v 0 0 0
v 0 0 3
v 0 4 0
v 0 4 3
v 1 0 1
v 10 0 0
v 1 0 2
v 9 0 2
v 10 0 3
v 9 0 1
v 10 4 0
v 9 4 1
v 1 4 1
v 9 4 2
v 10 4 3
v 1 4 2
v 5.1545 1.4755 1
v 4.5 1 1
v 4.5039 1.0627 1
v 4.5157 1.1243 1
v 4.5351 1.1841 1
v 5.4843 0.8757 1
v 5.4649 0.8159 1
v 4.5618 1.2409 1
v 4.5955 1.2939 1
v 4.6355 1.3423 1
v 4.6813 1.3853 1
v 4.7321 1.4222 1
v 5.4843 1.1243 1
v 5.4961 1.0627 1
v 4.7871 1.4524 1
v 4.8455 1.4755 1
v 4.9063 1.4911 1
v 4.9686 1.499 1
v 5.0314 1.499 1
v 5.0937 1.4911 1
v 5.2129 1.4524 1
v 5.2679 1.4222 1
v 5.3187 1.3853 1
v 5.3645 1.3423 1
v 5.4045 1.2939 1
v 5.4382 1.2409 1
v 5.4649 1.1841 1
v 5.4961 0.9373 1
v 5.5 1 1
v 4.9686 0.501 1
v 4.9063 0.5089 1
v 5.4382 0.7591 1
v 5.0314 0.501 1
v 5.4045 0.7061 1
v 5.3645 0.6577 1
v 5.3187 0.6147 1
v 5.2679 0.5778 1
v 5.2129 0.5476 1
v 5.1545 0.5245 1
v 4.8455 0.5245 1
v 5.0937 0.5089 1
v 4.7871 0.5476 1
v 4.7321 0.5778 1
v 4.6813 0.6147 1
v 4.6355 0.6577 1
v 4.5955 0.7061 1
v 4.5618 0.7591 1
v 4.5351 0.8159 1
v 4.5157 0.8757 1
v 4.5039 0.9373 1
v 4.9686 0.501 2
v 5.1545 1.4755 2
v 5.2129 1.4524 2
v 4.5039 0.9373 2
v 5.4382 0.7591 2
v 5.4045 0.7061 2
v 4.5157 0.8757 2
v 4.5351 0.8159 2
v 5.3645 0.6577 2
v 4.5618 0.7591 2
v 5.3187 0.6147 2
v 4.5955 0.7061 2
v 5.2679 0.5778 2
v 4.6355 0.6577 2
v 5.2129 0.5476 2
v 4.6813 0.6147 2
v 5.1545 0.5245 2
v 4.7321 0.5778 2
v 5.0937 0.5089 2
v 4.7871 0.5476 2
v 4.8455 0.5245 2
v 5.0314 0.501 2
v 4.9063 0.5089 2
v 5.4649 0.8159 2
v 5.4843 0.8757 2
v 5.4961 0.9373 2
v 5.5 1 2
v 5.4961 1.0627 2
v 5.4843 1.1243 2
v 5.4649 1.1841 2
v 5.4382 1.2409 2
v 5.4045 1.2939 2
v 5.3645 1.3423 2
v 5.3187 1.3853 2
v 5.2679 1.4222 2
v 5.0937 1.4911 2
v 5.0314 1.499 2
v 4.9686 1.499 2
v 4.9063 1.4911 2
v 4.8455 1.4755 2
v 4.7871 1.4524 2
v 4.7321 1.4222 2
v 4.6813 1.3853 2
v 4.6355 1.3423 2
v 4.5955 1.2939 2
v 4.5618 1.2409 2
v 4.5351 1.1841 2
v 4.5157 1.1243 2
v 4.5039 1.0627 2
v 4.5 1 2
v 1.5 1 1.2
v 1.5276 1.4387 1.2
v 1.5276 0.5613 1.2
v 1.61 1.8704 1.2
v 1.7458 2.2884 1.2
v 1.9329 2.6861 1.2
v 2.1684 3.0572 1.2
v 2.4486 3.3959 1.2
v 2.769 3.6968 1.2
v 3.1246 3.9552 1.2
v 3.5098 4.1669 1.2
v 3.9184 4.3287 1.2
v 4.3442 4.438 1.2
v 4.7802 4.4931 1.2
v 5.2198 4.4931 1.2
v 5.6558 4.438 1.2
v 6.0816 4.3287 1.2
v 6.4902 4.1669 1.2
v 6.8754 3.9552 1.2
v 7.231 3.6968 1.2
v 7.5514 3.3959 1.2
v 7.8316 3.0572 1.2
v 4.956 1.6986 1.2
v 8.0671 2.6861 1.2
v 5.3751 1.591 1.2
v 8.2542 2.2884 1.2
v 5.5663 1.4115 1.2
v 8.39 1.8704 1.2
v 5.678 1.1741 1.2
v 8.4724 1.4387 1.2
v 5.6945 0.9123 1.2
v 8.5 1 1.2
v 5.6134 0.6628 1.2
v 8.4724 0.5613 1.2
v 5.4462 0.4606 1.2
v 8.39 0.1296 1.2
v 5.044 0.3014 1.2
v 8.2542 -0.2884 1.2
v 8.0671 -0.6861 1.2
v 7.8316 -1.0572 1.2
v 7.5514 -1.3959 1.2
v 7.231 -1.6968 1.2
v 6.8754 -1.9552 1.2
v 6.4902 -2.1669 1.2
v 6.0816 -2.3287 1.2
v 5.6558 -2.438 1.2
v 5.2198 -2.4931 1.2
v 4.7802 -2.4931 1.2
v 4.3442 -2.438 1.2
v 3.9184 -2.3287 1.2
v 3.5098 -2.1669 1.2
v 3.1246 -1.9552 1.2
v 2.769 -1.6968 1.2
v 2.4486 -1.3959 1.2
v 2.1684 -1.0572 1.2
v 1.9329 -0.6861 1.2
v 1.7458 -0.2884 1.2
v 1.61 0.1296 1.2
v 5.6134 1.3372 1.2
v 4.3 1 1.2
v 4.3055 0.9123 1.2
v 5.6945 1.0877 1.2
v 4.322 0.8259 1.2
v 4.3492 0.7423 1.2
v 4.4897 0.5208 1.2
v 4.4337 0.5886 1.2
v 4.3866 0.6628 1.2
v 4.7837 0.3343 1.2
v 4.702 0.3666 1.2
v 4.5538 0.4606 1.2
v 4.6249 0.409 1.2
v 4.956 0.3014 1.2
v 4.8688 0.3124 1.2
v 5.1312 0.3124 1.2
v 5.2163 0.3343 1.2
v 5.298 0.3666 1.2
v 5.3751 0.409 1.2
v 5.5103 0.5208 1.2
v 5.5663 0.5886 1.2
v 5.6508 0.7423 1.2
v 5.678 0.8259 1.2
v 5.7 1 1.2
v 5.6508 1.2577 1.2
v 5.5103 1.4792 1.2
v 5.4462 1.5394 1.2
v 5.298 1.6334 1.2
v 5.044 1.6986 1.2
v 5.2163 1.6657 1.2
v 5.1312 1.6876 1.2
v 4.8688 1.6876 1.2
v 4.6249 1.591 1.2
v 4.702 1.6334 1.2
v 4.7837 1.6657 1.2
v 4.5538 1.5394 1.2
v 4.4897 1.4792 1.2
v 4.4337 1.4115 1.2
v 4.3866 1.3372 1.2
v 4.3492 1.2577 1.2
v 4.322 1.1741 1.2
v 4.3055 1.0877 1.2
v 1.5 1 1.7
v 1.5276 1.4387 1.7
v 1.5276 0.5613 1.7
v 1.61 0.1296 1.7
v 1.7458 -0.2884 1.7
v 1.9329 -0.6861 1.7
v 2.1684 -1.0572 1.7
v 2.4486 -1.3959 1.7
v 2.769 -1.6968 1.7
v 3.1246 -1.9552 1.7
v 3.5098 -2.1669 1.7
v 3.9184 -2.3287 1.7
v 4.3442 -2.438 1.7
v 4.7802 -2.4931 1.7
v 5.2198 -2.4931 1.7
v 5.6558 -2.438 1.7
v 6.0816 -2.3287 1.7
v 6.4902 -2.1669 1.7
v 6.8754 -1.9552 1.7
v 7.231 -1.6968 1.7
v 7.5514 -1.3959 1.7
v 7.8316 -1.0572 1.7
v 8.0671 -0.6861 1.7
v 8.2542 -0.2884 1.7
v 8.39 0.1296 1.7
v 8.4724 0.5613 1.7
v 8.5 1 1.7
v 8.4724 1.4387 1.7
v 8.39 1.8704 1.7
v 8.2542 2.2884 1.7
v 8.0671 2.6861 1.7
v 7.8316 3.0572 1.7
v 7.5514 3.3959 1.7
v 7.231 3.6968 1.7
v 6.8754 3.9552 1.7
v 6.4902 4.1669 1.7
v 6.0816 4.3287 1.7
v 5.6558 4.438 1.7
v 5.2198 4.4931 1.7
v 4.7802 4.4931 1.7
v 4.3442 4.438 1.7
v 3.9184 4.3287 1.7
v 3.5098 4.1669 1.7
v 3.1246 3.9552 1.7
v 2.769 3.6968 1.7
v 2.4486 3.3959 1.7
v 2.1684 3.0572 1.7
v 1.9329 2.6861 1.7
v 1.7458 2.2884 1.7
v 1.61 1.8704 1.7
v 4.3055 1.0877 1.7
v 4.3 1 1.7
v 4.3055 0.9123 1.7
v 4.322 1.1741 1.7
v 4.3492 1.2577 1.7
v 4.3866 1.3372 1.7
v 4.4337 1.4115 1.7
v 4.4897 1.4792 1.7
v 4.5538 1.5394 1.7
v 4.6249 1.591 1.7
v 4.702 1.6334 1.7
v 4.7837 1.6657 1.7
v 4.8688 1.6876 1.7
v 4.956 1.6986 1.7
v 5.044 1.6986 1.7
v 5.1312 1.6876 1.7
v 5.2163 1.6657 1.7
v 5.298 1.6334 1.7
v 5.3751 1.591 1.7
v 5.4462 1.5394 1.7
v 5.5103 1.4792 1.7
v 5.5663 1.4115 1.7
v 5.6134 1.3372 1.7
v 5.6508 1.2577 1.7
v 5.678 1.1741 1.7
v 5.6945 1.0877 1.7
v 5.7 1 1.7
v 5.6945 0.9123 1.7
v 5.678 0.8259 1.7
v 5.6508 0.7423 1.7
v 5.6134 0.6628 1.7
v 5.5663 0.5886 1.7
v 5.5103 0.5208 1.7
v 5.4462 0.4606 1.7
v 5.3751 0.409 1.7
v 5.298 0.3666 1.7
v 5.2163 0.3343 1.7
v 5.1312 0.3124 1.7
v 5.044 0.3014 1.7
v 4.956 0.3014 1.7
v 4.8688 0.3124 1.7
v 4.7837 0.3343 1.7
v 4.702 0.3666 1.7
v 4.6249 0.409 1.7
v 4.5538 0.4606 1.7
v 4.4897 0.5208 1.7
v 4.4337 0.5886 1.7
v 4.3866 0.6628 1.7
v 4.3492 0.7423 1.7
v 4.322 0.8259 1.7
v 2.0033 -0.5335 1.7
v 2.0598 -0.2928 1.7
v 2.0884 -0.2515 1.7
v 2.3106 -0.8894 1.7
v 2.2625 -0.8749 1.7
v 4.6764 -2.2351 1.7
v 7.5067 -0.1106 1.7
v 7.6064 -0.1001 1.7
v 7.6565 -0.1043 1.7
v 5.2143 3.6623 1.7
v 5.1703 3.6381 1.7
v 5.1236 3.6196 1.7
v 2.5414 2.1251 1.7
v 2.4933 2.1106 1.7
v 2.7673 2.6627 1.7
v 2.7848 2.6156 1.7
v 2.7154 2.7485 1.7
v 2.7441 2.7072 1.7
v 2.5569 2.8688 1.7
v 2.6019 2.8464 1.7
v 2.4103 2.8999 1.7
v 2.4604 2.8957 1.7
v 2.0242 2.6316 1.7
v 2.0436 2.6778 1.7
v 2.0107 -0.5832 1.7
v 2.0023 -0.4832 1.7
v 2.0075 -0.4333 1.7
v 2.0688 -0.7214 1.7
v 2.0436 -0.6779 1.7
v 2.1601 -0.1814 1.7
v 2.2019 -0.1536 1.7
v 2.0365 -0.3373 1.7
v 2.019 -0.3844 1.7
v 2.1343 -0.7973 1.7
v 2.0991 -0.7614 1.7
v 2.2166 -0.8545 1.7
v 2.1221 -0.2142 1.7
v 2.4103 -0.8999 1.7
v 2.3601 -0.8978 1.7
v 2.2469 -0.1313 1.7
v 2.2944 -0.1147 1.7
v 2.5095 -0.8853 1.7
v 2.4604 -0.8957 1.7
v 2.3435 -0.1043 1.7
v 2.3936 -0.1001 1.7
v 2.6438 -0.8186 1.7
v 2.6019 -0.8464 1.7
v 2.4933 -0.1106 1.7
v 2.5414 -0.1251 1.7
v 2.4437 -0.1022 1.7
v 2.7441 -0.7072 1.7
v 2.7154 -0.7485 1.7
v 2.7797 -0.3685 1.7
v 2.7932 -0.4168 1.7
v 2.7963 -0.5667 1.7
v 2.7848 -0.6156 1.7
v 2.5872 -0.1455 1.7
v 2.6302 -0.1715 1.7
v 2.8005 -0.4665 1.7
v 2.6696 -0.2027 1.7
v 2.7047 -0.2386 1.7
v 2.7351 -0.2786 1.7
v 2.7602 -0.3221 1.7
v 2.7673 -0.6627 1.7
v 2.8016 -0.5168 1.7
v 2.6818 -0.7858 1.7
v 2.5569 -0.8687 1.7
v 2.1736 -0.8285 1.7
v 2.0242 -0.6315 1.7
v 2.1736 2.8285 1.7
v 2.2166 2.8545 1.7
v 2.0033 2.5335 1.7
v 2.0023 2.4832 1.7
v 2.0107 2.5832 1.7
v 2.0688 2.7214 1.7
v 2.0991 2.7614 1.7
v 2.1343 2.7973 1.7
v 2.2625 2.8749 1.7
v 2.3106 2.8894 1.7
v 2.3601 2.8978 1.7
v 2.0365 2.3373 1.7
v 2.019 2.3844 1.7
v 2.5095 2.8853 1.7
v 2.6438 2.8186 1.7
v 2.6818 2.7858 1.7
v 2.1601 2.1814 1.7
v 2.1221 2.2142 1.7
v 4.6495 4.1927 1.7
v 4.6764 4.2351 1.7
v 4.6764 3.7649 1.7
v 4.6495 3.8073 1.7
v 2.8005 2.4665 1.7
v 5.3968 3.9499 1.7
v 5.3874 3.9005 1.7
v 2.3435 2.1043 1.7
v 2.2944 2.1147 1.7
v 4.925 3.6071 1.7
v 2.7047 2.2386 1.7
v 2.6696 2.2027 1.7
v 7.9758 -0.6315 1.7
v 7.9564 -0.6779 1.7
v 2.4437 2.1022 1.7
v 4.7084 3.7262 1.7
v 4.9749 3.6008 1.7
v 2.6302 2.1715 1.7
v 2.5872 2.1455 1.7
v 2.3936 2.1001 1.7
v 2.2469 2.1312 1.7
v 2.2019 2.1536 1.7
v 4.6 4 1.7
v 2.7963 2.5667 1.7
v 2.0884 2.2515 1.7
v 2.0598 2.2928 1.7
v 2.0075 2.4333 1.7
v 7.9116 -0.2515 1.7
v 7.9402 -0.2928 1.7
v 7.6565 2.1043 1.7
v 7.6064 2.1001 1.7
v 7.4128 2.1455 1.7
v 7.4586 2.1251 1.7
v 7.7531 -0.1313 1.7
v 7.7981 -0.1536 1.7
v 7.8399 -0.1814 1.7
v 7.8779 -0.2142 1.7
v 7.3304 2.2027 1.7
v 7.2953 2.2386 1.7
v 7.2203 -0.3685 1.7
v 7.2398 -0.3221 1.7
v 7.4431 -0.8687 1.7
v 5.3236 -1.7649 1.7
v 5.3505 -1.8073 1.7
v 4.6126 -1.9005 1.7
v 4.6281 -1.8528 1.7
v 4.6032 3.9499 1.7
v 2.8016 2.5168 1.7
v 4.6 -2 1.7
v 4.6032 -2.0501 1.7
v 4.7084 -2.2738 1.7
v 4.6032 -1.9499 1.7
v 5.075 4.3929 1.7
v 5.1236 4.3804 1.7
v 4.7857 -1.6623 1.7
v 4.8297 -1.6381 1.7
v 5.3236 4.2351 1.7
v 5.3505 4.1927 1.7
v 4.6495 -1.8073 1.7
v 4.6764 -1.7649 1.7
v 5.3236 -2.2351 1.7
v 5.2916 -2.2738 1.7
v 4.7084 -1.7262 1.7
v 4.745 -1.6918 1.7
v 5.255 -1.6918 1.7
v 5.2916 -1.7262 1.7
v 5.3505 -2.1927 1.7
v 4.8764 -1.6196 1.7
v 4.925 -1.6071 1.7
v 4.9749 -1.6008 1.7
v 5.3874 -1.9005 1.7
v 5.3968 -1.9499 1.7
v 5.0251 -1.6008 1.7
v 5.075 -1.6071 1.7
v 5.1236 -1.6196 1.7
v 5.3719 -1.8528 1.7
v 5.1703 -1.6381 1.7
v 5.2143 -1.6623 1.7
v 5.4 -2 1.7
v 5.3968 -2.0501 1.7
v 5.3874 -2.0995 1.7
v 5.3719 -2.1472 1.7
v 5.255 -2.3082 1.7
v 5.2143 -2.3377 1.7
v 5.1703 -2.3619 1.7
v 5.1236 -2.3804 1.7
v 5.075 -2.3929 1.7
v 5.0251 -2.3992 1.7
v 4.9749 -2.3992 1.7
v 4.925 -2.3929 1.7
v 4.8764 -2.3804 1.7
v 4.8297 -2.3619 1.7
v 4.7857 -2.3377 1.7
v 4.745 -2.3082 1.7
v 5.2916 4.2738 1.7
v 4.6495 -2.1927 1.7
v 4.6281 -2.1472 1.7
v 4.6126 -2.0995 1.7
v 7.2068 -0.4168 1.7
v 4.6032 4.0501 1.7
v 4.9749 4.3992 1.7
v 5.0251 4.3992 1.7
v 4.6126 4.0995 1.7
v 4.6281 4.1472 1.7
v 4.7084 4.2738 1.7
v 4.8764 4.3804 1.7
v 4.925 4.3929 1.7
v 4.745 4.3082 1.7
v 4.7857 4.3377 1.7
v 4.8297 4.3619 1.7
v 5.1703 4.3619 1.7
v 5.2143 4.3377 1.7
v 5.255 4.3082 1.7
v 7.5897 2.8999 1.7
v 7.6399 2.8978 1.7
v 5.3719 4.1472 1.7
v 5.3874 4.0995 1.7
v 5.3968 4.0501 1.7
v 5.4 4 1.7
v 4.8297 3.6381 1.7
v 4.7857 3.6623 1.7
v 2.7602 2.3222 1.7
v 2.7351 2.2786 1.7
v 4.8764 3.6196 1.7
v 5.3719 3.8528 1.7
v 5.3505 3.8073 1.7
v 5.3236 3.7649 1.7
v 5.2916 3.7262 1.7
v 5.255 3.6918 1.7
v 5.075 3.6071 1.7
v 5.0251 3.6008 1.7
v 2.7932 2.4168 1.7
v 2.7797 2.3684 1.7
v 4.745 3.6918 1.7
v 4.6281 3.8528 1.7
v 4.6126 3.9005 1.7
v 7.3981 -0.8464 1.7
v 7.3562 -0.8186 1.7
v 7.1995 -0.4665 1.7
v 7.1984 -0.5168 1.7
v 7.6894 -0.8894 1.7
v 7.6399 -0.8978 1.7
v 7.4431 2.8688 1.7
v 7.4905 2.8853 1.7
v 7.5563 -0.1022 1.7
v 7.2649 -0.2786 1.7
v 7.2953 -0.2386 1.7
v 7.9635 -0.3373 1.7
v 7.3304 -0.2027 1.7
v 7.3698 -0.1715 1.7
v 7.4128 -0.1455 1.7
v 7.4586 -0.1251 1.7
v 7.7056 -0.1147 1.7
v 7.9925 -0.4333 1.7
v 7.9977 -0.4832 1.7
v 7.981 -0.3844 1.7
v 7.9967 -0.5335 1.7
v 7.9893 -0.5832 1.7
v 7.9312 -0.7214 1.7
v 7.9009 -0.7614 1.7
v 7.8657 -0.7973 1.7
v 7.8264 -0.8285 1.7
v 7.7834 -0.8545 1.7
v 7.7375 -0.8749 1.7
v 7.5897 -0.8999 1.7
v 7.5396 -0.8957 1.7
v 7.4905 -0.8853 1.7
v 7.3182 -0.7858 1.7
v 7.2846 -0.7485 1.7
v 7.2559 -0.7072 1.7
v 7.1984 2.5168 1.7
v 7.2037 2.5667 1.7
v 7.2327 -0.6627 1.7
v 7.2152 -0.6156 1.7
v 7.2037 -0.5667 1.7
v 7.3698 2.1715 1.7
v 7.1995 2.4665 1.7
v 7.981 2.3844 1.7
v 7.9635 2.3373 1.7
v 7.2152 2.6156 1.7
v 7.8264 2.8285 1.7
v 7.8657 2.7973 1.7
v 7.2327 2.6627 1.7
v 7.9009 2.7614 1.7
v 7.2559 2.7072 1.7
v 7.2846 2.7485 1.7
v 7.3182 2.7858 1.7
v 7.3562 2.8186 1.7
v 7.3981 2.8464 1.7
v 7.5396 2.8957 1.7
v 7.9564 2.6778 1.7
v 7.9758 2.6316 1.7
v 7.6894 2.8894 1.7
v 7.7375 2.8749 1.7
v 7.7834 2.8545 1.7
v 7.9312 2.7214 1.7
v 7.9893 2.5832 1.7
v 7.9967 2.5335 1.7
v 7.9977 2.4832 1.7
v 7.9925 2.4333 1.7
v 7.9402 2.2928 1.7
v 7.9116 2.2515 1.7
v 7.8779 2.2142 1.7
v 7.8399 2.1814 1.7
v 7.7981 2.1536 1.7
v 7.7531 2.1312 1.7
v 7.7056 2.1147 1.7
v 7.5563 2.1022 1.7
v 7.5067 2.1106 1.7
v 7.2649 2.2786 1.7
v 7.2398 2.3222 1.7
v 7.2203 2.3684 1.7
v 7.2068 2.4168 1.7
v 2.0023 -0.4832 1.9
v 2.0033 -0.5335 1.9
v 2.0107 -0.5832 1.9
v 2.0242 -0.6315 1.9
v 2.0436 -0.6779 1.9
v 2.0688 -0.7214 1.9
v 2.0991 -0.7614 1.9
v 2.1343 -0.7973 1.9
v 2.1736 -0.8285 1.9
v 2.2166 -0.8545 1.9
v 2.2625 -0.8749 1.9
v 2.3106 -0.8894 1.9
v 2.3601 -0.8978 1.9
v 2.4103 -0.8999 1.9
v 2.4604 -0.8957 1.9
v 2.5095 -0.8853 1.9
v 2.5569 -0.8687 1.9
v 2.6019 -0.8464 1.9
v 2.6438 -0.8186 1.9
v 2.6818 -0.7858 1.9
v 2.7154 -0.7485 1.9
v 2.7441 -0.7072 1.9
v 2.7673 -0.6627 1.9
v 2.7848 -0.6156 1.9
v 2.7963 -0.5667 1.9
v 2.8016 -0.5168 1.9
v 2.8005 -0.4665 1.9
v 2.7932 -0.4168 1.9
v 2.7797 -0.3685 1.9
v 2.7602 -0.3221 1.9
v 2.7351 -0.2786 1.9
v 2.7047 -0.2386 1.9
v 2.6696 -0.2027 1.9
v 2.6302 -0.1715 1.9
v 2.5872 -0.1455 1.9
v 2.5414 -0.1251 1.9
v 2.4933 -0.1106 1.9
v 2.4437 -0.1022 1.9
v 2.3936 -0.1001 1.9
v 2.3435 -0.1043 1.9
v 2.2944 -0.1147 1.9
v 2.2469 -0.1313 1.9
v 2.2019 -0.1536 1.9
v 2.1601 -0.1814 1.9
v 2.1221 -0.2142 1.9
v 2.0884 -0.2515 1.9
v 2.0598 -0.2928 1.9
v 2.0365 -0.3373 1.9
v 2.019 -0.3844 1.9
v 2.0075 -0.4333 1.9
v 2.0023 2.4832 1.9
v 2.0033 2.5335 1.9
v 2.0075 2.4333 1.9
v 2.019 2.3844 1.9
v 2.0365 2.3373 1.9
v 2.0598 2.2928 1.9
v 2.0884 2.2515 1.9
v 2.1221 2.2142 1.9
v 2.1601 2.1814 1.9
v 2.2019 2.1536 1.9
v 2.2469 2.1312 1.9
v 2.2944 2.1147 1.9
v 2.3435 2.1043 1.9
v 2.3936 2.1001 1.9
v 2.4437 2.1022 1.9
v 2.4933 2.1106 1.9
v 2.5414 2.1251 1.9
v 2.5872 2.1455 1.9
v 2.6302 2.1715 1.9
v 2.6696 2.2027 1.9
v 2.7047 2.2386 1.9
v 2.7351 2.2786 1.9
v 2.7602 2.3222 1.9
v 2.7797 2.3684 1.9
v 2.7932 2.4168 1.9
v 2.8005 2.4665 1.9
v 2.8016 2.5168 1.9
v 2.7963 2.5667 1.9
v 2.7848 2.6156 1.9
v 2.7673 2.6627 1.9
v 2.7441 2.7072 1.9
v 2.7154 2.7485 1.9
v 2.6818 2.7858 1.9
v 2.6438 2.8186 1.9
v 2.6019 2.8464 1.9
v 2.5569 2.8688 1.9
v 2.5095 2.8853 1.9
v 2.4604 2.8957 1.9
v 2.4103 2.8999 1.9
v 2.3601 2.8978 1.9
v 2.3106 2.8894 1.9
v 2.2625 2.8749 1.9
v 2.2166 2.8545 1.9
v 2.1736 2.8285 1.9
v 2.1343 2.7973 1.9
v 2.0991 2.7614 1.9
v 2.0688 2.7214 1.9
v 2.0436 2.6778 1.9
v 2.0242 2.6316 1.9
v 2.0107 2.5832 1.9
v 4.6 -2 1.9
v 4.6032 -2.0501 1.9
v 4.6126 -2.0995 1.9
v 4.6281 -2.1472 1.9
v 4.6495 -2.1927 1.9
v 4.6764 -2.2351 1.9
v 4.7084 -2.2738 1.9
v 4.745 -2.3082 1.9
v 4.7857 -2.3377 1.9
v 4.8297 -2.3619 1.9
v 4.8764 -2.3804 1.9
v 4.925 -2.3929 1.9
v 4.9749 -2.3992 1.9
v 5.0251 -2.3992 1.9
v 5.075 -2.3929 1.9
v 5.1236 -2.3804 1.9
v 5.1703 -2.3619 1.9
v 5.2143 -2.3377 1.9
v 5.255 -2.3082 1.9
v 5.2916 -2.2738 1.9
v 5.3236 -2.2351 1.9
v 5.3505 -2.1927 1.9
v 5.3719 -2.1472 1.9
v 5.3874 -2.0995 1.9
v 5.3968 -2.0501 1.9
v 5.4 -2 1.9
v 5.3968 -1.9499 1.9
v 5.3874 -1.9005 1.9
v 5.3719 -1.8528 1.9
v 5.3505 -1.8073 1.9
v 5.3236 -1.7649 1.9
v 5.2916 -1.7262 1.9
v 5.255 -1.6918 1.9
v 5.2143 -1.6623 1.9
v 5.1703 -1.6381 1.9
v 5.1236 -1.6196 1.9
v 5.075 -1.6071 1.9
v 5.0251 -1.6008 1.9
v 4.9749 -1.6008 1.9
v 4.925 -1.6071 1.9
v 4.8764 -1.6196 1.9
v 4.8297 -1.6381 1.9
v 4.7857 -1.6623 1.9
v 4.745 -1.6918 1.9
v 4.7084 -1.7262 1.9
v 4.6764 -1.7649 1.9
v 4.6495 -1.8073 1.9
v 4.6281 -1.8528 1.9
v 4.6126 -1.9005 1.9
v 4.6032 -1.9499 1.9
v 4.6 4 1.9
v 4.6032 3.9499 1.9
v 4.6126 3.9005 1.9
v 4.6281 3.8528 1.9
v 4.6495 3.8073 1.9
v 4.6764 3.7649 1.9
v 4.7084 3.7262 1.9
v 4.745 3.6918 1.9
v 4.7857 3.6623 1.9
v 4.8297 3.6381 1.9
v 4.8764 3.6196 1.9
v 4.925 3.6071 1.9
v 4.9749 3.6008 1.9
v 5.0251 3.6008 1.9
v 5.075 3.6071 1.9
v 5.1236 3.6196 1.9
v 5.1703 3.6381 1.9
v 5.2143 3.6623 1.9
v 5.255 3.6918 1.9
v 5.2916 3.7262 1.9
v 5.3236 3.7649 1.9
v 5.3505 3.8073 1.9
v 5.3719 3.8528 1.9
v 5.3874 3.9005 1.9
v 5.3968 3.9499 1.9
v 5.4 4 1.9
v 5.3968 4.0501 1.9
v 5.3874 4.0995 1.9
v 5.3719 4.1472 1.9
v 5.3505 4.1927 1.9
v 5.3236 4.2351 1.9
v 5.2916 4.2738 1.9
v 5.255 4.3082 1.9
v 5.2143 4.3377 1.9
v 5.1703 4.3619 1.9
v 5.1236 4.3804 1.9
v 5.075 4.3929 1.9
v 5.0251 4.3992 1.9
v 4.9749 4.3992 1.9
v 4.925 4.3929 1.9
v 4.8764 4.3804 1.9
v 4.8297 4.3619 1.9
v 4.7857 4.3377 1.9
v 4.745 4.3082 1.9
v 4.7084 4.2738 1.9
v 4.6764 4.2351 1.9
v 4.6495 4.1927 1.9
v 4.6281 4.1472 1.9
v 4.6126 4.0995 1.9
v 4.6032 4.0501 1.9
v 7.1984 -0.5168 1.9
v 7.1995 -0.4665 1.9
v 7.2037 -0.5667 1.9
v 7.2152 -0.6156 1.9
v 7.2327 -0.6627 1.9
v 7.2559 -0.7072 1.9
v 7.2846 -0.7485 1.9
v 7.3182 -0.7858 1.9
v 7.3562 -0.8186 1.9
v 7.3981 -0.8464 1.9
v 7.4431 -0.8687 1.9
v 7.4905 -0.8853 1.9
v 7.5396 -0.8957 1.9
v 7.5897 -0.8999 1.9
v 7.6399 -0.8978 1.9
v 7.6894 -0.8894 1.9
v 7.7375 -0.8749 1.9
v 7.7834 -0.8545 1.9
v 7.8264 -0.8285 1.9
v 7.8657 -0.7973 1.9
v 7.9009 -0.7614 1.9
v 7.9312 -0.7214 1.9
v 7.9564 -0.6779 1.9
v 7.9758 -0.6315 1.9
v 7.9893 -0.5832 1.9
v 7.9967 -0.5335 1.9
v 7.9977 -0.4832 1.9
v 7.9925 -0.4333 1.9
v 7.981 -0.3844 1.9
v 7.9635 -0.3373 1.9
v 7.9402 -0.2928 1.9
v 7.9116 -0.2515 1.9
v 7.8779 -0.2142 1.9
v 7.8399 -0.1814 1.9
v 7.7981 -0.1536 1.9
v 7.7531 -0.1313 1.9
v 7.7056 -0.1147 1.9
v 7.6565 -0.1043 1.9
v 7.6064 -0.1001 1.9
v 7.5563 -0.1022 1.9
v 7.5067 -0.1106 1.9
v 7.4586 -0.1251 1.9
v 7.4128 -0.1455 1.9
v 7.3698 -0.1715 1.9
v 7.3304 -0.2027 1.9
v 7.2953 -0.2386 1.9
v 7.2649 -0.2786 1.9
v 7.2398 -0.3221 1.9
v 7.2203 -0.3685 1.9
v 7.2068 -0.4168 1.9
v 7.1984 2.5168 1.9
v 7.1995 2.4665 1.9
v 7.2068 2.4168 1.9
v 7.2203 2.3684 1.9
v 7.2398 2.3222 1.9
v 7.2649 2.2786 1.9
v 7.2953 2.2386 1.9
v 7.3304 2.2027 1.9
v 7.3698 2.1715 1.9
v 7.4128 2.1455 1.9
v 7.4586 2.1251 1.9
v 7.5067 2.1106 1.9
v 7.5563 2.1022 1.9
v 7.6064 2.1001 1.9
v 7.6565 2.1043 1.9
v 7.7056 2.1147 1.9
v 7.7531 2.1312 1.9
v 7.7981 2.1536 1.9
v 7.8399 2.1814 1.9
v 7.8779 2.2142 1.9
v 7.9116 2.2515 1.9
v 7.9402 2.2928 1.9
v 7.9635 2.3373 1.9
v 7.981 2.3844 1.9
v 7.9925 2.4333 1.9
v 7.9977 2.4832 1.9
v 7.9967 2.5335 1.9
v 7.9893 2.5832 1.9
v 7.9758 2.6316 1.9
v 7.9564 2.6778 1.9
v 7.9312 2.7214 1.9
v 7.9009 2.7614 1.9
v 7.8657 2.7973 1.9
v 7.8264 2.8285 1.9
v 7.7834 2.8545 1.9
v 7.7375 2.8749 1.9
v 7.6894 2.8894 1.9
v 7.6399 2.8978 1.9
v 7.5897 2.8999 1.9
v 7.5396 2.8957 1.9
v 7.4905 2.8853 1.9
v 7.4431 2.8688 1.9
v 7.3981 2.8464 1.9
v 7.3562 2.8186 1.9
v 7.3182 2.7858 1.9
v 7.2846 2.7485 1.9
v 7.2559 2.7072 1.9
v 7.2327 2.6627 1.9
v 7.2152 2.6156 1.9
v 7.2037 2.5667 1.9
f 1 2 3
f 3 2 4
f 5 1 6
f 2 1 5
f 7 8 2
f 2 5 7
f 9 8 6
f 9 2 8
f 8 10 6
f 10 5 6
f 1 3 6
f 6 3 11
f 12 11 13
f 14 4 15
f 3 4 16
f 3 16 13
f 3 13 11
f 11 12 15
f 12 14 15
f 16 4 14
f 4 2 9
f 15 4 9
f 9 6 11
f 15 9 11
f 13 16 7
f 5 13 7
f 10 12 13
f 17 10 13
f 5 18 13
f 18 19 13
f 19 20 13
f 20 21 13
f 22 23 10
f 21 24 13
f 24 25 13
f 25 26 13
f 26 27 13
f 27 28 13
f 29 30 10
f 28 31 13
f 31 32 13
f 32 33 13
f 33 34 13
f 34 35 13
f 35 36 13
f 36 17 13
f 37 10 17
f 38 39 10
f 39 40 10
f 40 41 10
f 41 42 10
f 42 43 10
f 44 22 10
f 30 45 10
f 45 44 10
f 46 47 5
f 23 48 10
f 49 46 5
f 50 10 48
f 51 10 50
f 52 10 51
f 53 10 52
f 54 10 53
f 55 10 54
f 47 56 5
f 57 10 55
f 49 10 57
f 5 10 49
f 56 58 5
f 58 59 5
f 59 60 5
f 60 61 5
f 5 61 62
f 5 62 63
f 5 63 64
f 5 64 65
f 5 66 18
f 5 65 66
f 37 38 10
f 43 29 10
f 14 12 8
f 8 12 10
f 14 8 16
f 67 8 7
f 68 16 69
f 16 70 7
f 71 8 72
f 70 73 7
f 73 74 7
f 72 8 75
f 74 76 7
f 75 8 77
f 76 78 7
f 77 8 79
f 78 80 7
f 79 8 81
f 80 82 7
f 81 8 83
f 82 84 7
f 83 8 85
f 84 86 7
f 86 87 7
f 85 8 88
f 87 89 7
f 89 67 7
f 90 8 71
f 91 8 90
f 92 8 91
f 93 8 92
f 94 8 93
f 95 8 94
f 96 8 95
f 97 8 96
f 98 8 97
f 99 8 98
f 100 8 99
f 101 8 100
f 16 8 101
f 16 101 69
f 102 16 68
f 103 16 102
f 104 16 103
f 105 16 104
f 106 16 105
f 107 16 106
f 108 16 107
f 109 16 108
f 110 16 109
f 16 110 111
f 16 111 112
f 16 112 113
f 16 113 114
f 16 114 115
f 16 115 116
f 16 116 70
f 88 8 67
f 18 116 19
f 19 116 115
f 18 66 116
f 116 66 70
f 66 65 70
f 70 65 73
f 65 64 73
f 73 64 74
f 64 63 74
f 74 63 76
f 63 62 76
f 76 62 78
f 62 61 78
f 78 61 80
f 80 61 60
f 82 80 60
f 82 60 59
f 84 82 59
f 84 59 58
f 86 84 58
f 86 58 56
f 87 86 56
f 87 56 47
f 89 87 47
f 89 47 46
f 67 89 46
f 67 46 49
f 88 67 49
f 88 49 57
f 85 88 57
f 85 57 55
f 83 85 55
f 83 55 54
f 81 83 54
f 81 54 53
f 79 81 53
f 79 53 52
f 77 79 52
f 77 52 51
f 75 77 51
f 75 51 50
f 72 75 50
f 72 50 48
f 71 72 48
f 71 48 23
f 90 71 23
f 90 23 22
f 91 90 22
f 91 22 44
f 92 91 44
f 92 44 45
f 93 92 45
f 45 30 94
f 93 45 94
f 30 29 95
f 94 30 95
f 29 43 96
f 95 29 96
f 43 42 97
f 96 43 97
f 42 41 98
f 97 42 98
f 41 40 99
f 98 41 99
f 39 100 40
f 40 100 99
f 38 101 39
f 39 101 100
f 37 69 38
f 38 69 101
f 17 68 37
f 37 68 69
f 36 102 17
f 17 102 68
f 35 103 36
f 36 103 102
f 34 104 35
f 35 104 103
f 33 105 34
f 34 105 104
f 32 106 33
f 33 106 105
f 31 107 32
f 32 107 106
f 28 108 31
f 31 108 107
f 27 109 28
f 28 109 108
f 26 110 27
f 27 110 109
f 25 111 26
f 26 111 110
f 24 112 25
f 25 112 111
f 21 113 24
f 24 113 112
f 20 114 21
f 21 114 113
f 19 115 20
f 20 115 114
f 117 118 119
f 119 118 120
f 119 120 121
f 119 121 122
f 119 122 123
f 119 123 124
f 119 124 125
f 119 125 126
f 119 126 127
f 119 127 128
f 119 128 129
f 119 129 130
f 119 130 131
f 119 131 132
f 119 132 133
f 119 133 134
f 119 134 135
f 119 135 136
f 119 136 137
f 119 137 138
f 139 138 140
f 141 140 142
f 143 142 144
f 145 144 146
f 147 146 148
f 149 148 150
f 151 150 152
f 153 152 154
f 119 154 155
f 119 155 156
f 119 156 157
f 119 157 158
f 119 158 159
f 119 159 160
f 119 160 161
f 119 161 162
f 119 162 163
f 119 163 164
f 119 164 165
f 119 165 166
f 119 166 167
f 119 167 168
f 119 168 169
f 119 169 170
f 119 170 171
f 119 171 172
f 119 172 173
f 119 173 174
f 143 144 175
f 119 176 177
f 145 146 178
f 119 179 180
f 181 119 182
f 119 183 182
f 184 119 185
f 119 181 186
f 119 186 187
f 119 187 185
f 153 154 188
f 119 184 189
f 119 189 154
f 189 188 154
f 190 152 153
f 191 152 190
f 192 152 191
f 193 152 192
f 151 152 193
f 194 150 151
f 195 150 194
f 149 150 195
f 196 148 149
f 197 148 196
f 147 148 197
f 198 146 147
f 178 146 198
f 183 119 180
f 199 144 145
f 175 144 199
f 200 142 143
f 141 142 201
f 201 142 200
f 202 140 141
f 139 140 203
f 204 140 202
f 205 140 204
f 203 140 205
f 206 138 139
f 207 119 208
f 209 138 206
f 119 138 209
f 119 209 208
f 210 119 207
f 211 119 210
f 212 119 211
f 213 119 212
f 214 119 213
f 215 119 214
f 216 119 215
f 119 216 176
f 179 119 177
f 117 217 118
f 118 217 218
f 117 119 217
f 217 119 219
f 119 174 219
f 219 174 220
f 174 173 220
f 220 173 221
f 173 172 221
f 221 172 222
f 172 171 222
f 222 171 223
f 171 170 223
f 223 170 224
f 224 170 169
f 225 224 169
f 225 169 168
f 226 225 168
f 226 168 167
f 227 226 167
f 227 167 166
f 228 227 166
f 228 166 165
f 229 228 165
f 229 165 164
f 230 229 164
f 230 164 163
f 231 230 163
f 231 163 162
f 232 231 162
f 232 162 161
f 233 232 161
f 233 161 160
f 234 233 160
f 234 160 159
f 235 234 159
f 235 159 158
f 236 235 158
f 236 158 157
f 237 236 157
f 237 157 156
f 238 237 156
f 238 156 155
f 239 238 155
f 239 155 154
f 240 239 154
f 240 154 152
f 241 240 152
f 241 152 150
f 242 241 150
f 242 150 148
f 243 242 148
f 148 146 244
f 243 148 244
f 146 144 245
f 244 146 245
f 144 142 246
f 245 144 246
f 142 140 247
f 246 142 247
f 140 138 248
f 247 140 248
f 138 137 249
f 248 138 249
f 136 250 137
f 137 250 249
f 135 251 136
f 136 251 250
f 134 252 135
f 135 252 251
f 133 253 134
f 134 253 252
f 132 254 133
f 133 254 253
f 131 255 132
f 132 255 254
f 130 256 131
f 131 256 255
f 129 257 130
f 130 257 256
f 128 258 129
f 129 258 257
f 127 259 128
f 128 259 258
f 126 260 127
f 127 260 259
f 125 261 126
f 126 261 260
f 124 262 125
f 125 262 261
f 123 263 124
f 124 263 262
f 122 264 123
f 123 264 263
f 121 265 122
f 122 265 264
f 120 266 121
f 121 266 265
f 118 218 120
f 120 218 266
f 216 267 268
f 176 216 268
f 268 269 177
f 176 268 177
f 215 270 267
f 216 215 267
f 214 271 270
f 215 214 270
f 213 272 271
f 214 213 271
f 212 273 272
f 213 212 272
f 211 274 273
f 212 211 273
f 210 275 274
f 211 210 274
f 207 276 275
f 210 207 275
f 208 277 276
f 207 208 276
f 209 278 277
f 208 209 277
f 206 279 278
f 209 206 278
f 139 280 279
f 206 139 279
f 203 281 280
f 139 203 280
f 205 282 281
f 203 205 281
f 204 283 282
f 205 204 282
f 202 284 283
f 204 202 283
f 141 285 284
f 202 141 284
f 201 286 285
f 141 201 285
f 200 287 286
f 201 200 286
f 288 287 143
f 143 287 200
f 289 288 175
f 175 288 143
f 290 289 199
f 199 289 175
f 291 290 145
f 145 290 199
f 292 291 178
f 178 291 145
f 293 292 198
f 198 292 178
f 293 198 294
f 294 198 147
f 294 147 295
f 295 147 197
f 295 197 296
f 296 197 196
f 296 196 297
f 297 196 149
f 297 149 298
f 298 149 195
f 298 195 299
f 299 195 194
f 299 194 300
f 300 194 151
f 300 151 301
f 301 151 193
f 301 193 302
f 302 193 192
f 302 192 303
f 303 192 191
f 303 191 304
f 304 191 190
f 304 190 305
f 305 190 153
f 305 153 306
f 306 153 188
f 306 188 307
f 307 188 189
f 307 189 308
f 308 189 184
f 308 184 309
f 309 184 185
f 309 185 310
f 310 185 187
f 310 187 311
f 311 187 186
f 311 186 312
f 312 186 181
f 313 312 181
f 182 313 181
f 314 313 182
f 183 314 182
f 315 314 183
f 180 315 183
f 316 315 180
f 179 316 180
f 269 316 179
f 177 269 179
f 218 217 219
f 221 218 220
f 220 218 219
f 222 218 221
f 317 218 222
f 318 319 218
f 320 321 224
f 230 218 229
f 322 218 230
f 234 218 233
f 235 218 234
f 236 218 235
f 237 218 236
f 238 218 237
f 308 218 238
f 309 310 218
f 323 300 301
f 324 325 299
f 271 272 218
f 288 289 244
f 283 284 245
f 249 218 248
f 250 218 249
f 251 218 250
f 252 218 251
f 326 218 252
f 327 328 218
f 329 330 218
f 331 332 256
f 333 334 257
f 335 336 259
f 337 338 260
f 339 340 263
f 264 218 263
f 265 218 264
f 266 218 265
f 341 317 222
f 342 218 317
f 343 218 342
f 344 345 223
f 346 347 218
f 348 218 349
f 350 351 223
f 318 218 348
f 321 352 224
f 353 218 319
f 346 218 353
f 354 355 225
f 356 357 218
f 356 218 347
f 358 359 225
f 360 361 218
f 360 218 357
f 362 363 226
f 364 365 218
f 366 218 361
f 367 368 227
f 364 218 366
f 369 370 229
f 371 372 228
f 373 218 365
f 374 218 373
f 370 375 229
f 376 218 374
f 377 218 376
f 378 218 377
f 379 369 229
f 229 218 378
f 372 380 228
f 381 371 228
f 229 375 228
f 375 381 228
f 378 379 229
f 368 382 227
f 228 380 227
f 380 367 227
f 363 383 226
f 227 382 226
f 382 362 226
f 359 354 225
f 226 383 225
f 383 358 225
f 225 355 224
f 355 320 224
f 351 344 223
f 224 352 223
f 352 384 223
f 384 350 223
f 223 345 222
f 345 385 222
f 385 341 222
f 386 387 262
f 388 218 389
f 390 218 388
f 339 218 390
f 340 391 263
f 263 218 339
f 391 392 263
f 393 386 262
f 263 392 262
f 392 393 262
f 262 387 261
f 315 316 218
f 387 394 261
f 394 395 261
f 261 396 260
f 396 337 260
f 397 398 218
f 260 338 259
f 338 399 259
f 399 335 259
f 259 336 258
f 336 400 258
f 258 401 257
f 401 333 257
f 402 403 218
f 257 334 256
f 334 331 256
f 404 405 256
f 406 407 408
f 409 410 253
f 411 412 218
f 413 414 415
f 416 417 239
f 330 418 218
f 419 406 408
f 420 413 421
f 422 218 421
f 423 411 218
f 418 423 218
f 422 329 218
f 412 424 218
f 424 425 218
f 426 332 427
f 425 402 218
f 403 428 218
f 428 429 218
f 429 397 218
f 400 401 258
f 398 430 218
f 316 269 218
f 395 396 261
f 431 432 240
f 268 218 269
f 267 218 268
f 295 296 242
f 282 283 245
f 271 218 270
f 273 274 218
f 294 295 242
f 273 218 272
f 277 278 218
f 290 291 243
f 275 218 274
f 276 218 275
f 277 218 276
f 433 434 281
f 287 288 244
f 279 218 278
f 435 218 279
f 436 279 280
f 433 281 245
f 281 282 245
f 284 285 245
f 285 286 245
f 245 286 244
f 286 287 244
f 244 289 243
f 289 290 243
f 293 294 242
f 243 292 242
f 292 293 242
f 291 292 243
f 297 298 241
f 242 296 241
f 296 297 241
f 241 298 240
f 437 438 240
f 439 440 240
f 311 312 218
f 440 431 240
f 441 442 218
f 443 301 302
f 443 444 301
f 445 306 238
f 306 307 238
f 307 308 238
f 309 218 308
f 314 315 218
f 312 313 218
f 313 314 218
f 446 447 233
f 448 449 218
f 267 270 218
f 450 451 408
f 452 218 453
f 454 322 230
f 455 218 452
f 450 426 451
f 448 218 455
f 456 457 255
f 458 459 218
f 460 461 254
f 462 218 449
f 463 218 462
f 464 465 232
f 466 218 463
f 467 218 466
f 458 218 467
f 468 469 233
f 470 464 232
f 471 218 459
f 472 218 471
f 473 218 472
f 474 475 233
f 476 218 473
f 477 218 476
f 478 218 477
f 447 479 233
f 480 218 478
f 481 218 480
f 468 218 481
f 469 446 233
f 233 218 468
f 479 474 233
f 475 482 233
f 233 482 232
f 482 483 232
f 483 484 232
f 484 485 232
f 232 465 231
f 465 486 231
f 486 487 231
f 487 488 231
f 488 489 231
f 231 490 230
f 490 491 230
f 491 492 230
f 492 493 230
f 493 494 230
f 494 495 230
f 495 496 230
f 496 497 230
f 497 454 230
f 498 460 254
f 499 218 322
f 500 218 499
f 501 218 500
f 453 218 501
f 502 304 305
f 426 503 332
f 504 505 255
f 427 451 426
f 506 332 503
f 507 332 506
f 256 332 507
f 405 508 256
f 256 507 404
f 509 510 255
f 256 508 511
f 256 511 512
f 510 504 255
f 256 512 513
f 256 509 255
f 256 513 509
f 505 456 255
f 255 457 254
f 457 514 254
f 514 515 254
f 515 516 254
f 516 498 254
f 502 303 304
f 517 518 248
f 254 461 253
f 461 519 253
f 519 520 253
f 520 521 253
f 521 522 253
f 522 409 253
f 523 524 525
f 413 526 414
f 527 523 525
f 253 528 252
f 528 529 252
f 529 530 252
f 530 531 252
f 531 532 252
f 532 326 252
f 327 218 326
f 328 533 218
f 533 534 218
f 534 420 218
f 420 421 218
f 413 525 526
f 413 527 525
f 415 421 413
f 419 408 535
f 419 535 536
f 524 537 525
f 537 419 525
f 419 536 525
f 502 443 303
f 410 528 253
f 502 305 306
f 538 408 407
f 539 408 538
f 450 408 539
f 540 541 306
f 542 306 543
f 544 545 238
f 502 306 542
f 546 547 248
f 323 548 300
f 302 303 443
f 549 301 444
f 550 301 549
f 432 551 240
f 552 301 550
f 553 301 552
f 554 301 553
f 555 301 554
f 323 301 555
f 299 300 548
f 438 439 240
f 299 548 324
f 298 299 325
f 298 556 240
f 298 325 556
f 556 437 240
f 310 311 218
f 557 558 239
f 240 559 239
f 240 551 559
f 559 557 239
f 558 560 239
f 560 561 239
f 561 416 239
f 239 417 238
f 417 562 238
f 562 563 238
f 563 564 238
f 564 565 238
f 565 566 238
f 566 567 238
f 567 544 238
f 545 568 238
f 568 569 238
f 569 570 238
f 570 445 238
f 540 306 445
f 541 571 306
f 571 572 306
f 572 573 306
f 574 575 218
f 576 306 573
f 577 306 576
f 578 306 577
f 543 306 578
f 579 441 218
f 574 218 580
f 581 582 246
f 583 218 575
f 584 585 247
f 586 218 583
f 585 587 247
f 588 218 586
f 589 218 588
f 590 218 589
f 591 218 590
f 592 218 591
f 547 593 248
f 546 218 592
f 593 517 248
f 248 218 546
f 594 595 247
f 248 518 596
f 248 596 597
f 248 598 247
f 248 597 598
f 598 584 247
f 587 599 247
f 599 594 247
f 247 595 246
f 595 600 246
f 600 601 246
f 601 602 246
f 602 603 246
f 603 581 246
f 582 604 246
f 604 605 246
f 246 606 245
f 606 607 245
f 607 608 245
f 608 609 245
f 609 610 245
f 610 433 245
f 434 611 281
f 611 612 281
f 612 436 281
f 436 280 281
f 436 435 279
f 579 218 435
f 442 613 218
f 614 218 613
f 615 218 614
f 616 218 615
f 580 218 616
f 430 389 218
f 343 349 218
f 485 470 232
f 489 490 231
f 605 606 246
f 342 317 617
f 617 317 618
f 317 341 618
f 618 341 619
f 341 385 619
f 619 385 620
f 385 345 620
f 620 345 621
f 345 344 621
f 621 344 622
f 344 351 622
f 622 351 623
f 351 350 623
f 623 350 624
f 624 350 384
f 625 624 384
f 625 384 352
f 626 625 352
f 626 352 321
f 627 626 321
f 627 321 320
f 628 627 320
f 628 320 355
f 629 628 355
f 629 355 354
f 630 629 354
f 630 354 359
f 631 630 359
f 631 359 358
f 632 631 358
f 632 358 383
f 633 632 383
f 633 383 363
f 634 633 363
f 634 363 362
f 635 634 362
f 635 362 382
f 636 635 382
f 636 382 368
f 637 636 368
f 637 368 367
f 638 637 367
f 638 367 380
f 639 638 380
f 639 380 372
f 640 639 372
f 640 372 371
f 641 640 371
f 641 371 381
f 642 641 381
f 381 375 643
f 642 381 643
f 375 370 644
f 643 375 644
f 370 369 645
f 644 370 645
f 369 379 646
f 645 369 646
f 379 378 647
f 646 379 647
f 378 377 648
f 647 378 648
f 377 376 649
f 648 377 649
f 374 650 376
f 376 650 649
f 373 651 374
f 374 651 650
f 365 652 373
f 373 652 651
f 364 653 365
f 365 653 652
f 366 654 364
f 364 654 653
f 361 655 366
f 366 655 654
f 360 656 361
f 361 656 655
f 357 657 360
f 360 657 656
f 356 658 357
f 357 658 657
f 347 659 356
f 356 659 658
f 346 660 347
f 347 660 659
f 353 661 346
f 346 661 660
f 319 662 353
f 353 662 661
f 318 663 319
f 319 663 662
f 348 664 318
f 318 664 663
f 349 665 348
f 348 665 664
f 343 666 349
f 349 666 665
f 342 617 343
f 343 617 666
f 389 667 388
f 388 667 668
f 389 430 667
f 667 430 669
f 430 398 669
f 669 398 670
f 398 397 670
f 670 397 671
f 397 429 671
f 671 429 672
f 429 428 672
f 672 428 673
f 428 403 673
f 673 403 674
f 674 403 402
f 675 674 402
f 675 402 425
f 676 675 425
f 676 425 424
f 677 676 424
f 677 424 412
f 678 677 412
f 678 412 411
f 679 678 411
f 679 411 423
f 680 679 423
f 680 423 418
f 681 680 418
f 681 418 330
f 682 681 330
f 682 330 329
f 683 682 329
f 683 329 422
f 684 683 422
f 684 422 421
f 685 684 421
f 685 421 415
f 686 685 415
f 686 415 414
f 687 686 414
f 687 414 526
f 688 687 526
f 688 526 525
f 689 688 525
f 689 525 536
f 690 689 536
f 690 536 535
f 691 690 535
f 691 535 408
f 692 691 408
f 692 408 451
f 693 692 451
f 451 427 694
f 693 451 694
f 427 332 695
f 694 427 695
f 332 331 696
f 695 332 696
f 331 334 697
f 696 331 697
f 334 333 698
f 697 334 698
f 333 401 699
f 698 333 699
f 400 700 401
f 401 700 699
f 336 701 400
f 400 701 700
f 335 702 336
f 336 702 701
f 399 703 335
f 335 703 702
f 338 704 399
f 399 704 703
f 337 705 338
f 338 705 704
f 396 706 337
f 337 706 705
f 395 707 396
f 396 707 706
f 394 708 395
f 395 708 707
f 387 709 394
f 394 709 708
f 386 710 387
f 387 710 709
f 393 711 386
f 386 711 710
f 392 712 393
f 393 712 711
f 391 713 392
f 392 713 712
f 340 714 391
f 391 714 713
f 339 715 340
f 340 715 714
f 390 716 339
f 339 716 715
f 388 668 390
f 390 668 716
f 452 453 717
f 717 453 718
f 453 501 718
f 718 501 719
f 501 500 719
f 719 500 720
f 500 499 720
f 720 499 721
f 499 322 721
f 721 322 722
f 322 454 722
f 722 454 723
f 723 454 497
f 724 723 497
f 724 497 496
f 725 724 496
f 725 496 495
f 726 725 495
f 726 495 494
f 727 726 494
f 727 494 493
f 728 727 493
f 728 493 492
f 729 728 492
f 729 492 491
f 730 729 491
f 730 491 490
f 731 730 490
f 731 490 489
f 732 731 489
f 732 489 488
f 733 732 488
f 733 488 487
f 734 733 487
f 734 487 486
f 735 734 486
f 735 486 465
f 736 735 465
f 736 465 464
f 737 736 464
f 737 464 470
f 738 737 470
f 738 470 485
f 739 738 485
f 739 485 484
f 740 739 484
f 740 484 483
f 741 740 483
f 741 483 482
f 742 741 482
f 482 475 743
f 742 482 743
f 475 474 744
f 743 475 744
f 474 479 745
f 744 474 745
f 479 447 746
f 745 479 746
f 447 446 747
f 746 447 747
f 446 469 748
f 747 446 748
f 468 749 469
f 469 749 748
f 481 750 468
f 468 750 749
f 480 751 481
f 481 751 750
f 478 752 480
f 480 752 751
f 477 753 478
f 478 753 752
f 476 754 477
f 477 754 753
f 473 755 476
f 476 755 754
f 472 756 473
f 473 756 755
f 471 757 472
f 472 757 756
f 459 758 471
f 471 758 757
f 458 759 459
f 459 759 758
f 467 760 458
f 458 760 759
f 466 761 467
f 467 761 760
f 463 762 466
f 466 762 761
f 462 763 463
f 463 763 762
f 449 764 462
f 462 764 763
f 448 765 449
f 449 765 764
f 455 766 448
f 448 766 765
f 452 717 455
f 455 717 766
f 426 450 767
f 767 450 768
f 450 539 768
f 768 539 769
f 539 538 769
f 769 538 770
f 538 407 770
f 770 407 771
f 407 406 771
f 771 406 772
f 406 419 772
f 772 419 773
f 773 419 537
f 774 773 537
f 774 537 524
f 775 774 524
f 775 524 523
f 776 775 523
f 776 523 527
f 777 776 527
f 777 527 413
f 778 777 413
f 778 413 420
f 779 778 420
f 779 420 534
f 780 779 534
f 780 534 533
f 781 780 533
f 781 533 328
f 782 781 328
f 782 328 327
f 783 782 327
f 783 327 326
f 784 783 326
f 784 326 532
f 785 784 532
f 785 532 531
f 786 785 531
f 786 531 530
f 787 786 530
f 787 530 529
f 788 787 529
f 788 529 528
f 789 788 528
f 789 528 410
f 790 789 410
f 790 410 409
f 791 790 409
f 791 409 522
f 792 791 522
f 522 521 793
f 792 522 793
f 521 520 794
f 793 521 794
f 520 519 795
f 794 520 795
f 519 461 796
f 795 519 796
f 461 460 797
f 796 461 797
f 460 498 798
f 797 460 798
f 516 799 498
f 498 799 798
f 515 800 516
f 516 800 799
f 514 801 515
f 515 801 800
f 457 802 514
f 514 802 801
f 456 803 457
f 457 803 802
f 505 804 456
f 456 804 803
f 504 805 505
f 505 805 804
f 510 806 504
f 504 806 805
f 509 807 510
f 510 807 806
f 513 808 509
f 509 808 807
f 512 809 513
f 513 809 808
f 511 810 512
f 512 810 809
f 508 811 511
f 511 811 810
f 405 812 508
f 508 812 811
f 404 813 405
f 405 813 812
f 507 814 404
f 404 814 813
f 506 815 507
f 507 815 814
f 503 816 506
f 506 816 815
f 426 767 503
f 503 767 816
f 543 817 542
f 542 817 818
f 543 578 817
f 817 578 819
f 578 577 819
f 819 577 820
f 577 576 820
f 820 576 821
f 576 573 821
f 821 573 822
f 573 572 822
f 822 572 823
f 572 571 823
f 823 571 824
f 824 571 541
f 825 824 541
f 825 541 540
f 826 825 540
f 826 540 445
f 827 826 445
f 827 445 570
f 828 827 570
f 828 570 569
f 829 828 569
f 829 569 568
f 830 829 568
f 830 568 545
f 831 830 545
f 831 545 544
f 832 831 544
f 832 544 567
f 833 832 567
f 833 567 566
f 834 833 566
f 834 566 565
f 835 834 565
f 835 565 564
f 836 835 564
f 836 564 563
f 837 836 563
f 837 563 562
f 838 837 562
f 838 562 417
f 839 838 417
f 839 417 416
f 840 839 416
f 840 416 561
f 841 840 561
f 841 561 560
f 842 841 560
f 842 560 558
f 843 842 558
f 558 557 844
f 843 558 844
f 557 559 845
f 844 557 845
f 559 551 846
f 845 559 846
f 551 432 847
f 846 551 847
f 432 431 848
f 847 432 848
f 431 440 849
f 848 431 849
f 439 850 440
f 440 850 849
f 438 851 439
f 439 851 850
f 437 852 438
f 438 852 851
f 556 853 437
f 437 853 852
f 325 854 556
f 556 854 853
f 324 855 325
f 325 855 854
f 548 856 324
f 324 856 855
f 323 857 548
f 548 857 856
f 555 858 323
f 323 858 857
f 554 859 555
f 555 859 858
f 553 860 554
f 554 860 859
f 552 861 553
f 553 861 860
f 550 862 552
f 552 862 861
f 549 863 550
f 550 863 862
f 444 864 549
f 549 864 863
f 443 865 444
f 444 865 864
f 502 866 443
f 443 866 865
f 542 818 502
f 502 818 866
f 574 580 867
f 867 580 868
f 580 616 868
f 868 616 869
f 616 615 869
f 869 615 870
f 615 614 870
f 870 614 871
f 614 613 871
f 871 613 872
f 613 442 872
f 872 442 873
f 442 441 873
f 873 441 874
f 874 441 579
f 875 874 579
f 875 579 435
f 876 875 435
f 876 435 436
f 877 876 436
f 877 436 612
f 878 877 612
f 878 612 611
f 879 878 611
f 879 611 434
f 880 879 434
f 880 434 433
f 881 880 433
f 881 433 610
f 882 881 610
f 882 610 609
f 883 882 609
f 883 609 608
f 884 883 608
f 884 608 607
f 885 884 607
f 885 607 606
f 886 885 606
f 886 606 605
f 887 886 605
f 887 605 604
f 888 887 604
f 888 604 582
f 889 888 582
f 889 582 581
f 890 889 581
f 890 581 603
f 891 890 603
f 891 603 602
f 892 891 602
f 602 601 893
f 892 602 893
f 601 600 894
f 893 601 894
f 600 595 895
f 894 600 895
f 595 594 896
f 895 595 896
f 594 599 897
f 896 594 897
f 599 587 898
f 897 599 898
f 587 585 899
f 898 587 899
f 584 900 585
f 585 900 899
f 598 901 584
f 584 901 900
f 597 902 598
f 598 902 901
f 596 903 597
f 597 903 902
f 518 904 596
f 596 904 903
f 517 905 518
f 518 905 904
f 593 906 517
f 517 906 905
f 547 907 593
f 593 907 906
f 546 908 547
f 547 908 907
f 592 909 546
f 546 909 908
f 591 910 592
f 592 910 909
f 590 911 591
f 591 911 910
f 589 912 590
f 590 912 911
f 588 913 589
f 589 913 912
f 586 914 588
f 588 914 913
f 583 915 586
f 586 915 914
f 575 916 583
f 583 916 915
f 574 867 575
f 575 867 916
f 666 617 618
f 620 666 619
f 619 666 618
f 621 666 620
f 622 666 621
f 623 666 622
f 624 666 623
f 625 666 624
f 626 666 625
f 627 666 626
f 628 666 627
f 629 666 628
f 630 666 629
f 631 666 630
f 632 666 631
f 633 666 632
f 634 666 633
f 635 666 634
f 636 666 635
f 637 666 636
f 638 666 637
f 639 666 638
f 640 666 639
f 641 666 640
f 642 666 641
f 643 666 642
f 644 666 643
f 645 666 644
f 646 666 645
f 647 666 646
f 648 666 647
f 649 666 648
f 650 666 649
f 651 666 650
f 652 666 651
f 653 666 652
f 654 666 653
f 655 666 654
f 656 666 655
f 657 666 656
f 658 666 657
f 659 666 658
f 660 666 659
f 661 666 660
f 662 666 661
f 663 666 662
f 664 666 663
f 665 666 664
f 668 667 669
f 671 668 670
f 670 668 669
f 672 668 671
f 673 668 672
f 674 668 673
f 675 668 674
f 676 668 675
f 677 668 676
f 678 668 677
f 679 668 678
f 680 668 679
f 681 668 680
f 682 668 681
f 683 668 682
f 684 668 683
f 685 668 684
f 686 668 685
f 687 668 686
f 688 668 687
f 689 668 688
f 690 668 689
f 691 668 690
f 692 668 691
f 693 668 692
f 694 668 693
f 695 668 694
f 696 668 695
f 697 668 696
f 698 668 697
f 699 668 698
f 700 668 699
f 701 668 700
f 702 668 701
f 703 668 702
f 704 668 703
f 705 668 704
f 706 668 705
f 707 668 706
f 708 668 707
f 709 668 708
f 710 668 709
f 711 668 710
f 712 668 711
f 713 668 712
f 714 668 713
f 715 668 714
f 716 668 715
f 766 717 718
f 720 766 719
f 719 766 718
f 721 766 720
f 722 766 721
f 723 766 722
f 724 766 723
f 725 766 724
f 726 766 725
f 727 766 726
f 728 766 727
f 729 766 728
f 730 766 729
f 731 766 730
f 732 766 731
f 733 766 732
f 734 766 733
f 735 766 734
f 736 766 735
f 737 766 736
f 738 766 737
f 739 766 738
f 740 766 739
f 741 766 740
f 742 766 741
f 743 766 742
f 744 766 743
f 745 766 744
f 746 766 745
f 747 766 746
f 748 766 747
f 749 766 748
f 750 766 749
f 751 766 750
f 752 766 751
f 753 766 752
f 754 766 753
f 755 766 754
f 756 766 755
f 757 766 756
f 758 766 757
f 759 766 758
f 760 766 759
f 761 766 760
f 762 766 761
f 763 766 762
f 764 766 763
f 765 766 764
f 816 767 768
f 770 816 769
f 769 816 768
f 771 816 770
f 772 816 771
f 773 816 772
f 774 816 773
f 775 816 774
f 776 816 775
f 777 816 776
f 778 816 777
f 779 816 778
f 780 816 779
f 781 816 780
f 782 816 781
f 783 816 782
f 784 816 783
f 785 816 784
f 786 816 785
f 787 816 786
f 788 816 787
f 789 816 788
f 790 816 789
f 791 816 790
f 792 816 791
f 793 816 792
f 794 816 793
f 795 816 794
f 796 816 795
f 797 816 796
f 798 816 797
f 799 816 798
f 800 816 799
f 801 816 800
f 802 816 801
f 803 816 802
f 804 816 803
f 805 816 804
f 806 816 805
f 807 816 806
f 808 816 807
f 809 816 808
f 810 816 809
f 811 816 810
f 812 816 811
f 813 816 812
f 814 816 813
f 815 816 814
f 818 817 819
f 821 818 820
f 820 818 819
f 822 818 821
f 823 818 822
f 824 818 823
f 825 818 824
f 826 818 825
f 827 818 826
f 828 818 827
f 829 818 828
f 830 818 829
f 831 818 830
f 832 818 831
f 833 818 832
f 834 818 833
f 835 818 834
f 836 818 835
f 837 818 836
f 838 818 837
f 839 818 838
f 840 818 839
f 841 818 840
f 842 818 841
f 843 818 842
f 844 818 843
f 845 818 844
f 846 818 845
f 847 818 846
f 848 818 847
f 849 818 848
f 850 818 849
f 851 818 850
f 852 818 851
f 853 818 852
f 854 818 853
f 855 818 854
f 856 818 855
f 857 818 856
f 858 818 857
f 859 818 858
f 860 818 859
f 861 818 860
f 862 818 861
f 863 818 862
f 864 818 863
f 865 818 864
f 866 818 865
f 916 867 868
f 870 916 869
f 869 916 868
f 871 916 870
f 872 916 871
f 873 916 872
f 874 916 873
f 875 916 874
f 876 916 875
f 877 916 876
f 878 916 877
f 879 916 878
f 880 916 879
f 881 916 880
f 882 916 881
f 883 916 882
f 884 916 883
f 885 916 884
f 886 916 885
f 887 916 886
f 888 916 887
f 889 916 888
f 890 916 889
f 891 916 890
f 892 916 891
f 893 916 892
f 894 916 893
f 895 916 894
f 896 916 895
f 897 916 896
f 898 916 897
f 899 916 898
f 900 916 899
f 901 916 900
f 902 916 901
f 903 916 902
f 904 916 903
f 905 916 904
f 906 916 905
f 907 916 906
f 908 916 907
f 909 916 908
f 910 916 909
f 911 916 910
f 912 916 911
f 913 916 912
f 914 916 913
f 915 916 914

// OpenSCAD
module inner(){
	translate([1,1,0])
		cube([6,7,1]);
	cube([8,6,1]);
}

module box(){
	difference(){
		cube([10,4,3]);

		translate([1,-1,1])
			inner();
	}
	
	translate([5,1,0])
		cylinder(r=0.5, h=3, $fn=50);
}

module roller(){
	difference(){
		color("red")
			translate([5,1,1.2])
			cylinder(r=3.5, h=0.5, $fn=50);

		translate([5,1,1])
			cylinder(r=0.7, h=1, $fn=50);
	}
}

module vex(){
	translate([5, 1, 1.4])
		for( i = [0:5] ){

			rotate(i*360/6, [0,0,1])
			translate([0, 3, 0])
			cylinder(r=0.4, h=0.5, $fn=50);
	}
}

box();
roller();
vex();
